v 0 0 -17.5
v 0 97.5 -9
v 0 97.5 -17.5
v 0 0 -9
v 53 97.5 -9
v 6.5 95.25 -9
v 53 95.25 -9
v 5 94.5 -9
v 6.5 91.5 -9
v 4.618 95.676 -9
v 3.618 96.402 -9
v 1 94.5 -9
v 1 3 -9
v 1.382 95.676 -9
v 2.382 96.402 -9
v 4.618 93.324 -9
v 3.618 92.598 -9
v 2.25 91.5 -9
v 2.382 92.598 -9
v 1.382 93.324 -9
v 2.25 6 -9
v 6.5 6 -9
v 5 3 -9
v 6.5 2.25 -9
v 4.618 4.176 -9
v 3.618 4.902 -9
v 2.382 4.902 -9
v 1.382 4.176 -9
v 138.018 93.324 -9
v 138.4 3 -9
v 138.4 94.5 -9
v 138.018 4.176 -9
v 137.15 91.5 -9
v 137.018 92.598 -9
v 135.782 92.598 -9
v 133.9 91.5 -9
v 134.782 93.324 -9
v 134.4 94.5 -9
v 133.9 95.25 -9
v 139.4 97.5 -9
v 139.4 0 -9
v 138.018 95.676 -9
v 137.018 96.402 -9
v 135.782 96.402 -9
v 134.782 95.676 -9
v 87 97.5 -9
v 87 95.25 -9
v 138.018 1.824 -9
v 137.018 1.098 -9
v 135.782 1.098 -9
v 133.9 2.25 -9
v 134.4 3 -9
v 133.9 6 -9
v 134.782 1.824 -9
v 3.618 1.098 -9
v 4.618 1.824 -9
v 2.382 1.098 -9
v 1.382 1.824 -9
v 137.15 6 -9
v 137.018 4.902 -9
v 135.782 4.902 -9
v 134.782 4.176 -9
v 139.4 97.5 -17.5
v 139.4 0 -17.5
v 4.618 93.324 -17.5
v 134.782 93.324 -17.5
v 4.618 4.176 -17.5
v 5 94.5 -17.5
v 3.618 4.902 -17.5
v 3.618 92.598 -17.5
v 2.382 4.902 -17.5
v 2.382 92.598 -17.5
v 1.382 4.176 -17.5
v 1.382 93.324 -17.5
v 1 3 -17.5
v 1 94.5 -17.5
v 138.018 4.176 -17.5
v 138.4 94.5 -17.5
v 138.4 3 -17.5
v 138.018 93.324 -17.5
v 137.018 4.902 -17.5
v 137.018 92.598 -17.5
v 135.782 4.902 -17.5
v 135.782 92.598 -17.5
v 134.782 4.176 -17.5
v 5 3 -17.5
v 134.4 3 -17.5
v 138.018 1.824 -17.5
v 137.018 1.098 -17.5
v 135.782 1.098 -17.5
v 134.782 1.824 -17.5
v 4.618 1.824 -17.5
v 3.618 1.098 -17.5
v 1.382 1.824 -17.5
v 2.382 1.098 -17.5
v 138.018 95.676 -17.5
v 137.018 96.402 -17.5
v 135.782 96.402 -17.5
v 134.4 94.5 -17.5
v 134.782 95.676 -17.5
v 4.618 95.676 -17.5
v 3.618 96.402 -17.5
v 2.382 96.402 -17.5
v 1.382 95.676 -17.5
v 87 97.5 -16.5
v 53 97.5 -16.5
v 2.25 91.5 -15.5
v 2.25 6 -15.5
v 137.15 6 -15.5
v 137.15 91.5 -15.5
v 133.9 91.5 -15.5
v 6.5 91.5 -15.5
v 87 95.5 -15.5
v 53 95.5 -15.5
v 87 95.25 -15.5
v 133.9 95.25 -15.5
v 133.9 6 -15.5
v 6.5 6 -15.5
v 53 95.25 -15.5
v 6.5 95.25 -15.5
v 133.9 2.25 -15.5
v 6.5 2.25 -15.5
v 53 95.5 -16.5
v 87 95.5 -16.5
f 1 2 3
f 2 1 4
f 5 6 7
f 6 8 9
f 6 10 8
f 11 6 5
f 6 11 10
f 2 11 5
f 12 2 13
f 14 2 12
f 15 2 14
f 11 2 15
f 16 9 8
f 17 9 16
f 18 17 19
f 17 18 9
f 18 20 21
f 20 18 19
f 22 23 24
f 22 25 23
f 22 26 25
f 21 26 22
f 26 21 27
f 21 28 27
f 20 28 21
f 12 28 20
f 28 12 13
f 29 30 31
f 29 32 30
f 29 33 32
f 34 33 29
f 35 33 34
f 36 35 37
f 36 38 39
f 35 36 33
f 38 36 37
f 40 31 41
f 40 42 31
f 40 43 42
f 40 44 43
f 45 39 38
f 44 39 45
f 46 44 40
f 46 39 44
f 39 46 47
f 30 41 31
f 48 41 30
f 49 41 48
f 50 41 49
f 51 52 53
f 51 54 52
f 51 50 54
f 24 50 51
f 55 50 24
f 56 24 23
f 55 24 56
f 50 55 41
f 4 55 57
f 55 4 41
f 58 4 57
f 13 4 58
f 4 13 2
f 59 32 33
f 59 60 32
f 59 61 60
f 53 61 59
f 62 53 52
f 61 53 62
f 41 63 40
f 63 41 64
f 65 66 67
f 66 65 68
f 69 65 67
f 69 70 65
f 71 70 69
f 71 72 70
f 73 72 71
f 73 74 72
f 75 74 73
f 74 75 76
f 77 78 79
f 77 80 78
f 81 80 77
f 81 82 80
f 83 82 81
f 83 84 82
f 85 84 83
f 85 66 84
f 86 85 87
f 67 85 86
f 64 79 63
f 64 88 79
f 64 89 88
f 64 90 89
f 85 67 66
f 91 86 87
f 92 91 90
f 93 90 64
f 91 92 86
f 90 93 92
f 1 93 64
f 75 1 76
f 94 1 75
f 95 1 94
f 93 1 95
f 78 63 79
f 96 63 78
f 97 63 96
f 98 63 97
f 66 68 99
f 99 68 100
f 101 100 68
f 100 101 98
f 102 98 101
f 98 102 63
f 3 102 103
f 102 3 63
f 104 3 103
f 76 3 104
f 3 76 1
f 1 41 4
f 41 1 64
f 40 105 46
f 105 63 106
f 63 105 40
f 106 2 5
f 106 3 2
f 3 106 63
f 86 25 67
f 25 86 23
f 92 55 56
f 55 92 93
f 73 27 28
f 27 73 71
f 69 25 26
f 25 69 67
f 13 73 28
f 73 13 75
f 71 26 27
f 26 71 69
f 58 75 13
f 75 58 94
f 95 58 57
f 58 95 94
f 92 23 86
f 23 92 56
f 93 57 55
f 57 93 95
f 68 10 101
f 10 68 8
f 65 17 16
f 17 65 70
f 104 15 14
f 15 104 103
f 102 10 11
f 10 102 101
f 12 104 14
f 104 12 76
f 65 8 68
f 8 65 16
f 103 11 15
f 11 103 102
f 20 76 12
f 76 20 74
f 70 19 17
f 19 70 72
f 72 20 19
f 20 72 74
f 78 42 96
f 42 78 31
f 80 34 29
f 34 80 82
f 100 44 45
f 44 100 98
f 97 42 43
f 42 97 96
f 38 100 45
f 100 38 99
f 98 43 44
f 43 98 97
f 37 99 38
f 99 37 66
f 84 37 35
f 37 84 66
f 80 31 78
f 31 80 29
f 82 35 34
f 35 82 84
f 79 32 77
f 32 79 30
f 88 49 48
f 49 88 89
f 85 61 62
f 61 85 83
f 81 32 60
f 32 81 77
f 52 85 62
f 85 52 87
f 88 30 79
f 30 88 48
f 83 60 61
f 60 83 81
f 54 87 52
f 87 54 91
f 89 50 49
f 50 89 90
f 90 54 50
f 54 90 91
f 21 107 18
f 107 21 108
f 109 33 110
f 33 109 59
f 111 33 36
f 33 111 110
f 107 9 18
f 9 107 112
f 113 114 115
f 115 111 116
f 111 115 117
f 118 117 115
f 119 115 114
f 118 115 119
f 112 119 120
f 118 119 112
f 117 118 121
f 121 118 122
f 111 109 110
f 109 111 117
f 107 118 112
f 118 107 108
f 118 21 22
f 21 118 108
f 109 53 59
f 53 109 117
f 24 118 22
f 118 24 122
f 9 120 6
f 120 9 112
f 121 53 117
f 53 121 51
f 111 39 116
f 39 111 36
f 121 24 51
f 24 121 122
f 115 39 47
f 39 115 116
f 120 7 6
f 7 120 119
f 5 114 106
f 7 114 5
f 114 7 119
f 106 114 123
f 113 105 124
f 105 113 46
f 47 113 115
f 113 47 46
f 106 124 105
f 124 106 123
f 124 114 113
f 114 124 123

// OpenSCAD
keyCols = 7;
keyRows = 5;
keyX = 15.2;
keyY = 12.6;
keySpace = 3.5;
vKeySpace=6;
edgeSpaceAddition = 4;
edgeSpace = (edgeSpaceAddition*2)-keySpace;
keyZ = -1;

supportH = 3.5;
supportW = 1.5;
supportZ = -3;

moduleX = (edgeSpace+edgeSpaceAddition)+(keySpace*keyCols)+keyX*(keyCols-1)+keyX;
moduleY = (edgeSpaceAddition*2-keySpace)+(vKeySpace*keyRows)+keyY*(keyRows-1)+keyY;

module screwHoleD (x, y, depth){
	translate([x,y,keyZ]) cylinder(h=depth, r=2, $fn=10);
}


thickness = 8.5;

translate([0,0,-(9+thickness)]){

  difference(){
    cube([moduleX,moduleY,thickness]);
    screws = thickness+2;
    screwHoleD(3,3,screws);
    screwHoleD(3,moduleY-3,screws);
    screwHoleD(moduleX-3,moduleY-3,screws);
    screwHoleD(moduleX-3,3,screws);
    
    reducer = (edgeSpace*2+3);
    translate([edgeSpace/2,edgeSpace+1.5,2]){
      cube([moduleX-edgeSpace,moduleY-reducer,thickness-2]);
    }
    translate([edgeSpace+2,(edgeSpace/2),2]){
      cube([moduleX-reducer,moduleY-edgeSpace,thickness-2]);
    }   
    translate([(140-34)/2, 97.5-50, 2]){
      cube([34,50,thickness-2]);
    }
    translate([(140-34)/2, 97.5-2, 1]){
      cube([34,4,thickness-2]);
    }
    
  }
 }
